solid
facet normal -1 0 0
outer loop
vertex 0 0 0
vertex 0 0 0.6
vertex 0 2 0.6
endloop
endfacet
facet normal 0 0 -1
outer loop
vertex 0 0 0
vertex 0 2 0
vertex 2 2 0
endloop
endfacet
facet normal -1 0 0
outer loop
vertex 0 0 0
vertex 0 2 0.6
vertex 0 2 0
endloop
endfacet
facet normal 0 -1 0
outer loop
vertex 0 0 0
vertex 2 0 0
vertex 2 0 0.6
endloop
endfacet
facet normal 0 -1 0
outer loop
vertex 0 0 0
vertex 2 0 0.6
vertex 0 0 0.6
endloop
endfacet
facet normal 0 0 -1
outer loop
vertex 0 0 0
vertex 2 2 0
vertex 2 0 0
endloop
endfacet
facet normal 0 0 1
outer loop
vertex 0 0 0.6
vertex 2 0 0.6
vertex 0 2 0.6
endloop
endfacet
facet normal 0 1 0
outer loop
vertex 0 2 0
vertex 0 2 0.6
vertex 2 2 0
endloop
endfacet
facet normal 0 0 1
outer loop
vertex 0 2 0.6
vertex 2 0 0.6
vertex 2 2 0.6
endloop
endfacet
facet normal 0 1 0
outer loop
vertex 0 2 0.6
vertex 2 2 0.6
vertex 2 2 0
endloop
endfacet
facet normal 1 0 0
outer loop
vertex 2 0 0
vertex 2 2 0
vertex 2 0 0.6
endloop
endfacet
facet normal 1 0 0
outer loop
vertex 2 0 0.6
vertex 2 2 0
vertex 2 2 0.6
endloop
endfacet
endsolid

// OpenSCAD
/* Warning, this is a very basic generator with a lot of approximation 
input data : [UQFN, SFX, 2x2x0.6mm, 12, , B, C04-00438B]
generated by com.zoubworld.electronics.cad.model3d.Basic
Date : Sun Feb 15 10:50:48 CET 2026
*/

//body
color("black")
translate([0,0,0])
cube([2.0,2.0,0.6], center=false);
